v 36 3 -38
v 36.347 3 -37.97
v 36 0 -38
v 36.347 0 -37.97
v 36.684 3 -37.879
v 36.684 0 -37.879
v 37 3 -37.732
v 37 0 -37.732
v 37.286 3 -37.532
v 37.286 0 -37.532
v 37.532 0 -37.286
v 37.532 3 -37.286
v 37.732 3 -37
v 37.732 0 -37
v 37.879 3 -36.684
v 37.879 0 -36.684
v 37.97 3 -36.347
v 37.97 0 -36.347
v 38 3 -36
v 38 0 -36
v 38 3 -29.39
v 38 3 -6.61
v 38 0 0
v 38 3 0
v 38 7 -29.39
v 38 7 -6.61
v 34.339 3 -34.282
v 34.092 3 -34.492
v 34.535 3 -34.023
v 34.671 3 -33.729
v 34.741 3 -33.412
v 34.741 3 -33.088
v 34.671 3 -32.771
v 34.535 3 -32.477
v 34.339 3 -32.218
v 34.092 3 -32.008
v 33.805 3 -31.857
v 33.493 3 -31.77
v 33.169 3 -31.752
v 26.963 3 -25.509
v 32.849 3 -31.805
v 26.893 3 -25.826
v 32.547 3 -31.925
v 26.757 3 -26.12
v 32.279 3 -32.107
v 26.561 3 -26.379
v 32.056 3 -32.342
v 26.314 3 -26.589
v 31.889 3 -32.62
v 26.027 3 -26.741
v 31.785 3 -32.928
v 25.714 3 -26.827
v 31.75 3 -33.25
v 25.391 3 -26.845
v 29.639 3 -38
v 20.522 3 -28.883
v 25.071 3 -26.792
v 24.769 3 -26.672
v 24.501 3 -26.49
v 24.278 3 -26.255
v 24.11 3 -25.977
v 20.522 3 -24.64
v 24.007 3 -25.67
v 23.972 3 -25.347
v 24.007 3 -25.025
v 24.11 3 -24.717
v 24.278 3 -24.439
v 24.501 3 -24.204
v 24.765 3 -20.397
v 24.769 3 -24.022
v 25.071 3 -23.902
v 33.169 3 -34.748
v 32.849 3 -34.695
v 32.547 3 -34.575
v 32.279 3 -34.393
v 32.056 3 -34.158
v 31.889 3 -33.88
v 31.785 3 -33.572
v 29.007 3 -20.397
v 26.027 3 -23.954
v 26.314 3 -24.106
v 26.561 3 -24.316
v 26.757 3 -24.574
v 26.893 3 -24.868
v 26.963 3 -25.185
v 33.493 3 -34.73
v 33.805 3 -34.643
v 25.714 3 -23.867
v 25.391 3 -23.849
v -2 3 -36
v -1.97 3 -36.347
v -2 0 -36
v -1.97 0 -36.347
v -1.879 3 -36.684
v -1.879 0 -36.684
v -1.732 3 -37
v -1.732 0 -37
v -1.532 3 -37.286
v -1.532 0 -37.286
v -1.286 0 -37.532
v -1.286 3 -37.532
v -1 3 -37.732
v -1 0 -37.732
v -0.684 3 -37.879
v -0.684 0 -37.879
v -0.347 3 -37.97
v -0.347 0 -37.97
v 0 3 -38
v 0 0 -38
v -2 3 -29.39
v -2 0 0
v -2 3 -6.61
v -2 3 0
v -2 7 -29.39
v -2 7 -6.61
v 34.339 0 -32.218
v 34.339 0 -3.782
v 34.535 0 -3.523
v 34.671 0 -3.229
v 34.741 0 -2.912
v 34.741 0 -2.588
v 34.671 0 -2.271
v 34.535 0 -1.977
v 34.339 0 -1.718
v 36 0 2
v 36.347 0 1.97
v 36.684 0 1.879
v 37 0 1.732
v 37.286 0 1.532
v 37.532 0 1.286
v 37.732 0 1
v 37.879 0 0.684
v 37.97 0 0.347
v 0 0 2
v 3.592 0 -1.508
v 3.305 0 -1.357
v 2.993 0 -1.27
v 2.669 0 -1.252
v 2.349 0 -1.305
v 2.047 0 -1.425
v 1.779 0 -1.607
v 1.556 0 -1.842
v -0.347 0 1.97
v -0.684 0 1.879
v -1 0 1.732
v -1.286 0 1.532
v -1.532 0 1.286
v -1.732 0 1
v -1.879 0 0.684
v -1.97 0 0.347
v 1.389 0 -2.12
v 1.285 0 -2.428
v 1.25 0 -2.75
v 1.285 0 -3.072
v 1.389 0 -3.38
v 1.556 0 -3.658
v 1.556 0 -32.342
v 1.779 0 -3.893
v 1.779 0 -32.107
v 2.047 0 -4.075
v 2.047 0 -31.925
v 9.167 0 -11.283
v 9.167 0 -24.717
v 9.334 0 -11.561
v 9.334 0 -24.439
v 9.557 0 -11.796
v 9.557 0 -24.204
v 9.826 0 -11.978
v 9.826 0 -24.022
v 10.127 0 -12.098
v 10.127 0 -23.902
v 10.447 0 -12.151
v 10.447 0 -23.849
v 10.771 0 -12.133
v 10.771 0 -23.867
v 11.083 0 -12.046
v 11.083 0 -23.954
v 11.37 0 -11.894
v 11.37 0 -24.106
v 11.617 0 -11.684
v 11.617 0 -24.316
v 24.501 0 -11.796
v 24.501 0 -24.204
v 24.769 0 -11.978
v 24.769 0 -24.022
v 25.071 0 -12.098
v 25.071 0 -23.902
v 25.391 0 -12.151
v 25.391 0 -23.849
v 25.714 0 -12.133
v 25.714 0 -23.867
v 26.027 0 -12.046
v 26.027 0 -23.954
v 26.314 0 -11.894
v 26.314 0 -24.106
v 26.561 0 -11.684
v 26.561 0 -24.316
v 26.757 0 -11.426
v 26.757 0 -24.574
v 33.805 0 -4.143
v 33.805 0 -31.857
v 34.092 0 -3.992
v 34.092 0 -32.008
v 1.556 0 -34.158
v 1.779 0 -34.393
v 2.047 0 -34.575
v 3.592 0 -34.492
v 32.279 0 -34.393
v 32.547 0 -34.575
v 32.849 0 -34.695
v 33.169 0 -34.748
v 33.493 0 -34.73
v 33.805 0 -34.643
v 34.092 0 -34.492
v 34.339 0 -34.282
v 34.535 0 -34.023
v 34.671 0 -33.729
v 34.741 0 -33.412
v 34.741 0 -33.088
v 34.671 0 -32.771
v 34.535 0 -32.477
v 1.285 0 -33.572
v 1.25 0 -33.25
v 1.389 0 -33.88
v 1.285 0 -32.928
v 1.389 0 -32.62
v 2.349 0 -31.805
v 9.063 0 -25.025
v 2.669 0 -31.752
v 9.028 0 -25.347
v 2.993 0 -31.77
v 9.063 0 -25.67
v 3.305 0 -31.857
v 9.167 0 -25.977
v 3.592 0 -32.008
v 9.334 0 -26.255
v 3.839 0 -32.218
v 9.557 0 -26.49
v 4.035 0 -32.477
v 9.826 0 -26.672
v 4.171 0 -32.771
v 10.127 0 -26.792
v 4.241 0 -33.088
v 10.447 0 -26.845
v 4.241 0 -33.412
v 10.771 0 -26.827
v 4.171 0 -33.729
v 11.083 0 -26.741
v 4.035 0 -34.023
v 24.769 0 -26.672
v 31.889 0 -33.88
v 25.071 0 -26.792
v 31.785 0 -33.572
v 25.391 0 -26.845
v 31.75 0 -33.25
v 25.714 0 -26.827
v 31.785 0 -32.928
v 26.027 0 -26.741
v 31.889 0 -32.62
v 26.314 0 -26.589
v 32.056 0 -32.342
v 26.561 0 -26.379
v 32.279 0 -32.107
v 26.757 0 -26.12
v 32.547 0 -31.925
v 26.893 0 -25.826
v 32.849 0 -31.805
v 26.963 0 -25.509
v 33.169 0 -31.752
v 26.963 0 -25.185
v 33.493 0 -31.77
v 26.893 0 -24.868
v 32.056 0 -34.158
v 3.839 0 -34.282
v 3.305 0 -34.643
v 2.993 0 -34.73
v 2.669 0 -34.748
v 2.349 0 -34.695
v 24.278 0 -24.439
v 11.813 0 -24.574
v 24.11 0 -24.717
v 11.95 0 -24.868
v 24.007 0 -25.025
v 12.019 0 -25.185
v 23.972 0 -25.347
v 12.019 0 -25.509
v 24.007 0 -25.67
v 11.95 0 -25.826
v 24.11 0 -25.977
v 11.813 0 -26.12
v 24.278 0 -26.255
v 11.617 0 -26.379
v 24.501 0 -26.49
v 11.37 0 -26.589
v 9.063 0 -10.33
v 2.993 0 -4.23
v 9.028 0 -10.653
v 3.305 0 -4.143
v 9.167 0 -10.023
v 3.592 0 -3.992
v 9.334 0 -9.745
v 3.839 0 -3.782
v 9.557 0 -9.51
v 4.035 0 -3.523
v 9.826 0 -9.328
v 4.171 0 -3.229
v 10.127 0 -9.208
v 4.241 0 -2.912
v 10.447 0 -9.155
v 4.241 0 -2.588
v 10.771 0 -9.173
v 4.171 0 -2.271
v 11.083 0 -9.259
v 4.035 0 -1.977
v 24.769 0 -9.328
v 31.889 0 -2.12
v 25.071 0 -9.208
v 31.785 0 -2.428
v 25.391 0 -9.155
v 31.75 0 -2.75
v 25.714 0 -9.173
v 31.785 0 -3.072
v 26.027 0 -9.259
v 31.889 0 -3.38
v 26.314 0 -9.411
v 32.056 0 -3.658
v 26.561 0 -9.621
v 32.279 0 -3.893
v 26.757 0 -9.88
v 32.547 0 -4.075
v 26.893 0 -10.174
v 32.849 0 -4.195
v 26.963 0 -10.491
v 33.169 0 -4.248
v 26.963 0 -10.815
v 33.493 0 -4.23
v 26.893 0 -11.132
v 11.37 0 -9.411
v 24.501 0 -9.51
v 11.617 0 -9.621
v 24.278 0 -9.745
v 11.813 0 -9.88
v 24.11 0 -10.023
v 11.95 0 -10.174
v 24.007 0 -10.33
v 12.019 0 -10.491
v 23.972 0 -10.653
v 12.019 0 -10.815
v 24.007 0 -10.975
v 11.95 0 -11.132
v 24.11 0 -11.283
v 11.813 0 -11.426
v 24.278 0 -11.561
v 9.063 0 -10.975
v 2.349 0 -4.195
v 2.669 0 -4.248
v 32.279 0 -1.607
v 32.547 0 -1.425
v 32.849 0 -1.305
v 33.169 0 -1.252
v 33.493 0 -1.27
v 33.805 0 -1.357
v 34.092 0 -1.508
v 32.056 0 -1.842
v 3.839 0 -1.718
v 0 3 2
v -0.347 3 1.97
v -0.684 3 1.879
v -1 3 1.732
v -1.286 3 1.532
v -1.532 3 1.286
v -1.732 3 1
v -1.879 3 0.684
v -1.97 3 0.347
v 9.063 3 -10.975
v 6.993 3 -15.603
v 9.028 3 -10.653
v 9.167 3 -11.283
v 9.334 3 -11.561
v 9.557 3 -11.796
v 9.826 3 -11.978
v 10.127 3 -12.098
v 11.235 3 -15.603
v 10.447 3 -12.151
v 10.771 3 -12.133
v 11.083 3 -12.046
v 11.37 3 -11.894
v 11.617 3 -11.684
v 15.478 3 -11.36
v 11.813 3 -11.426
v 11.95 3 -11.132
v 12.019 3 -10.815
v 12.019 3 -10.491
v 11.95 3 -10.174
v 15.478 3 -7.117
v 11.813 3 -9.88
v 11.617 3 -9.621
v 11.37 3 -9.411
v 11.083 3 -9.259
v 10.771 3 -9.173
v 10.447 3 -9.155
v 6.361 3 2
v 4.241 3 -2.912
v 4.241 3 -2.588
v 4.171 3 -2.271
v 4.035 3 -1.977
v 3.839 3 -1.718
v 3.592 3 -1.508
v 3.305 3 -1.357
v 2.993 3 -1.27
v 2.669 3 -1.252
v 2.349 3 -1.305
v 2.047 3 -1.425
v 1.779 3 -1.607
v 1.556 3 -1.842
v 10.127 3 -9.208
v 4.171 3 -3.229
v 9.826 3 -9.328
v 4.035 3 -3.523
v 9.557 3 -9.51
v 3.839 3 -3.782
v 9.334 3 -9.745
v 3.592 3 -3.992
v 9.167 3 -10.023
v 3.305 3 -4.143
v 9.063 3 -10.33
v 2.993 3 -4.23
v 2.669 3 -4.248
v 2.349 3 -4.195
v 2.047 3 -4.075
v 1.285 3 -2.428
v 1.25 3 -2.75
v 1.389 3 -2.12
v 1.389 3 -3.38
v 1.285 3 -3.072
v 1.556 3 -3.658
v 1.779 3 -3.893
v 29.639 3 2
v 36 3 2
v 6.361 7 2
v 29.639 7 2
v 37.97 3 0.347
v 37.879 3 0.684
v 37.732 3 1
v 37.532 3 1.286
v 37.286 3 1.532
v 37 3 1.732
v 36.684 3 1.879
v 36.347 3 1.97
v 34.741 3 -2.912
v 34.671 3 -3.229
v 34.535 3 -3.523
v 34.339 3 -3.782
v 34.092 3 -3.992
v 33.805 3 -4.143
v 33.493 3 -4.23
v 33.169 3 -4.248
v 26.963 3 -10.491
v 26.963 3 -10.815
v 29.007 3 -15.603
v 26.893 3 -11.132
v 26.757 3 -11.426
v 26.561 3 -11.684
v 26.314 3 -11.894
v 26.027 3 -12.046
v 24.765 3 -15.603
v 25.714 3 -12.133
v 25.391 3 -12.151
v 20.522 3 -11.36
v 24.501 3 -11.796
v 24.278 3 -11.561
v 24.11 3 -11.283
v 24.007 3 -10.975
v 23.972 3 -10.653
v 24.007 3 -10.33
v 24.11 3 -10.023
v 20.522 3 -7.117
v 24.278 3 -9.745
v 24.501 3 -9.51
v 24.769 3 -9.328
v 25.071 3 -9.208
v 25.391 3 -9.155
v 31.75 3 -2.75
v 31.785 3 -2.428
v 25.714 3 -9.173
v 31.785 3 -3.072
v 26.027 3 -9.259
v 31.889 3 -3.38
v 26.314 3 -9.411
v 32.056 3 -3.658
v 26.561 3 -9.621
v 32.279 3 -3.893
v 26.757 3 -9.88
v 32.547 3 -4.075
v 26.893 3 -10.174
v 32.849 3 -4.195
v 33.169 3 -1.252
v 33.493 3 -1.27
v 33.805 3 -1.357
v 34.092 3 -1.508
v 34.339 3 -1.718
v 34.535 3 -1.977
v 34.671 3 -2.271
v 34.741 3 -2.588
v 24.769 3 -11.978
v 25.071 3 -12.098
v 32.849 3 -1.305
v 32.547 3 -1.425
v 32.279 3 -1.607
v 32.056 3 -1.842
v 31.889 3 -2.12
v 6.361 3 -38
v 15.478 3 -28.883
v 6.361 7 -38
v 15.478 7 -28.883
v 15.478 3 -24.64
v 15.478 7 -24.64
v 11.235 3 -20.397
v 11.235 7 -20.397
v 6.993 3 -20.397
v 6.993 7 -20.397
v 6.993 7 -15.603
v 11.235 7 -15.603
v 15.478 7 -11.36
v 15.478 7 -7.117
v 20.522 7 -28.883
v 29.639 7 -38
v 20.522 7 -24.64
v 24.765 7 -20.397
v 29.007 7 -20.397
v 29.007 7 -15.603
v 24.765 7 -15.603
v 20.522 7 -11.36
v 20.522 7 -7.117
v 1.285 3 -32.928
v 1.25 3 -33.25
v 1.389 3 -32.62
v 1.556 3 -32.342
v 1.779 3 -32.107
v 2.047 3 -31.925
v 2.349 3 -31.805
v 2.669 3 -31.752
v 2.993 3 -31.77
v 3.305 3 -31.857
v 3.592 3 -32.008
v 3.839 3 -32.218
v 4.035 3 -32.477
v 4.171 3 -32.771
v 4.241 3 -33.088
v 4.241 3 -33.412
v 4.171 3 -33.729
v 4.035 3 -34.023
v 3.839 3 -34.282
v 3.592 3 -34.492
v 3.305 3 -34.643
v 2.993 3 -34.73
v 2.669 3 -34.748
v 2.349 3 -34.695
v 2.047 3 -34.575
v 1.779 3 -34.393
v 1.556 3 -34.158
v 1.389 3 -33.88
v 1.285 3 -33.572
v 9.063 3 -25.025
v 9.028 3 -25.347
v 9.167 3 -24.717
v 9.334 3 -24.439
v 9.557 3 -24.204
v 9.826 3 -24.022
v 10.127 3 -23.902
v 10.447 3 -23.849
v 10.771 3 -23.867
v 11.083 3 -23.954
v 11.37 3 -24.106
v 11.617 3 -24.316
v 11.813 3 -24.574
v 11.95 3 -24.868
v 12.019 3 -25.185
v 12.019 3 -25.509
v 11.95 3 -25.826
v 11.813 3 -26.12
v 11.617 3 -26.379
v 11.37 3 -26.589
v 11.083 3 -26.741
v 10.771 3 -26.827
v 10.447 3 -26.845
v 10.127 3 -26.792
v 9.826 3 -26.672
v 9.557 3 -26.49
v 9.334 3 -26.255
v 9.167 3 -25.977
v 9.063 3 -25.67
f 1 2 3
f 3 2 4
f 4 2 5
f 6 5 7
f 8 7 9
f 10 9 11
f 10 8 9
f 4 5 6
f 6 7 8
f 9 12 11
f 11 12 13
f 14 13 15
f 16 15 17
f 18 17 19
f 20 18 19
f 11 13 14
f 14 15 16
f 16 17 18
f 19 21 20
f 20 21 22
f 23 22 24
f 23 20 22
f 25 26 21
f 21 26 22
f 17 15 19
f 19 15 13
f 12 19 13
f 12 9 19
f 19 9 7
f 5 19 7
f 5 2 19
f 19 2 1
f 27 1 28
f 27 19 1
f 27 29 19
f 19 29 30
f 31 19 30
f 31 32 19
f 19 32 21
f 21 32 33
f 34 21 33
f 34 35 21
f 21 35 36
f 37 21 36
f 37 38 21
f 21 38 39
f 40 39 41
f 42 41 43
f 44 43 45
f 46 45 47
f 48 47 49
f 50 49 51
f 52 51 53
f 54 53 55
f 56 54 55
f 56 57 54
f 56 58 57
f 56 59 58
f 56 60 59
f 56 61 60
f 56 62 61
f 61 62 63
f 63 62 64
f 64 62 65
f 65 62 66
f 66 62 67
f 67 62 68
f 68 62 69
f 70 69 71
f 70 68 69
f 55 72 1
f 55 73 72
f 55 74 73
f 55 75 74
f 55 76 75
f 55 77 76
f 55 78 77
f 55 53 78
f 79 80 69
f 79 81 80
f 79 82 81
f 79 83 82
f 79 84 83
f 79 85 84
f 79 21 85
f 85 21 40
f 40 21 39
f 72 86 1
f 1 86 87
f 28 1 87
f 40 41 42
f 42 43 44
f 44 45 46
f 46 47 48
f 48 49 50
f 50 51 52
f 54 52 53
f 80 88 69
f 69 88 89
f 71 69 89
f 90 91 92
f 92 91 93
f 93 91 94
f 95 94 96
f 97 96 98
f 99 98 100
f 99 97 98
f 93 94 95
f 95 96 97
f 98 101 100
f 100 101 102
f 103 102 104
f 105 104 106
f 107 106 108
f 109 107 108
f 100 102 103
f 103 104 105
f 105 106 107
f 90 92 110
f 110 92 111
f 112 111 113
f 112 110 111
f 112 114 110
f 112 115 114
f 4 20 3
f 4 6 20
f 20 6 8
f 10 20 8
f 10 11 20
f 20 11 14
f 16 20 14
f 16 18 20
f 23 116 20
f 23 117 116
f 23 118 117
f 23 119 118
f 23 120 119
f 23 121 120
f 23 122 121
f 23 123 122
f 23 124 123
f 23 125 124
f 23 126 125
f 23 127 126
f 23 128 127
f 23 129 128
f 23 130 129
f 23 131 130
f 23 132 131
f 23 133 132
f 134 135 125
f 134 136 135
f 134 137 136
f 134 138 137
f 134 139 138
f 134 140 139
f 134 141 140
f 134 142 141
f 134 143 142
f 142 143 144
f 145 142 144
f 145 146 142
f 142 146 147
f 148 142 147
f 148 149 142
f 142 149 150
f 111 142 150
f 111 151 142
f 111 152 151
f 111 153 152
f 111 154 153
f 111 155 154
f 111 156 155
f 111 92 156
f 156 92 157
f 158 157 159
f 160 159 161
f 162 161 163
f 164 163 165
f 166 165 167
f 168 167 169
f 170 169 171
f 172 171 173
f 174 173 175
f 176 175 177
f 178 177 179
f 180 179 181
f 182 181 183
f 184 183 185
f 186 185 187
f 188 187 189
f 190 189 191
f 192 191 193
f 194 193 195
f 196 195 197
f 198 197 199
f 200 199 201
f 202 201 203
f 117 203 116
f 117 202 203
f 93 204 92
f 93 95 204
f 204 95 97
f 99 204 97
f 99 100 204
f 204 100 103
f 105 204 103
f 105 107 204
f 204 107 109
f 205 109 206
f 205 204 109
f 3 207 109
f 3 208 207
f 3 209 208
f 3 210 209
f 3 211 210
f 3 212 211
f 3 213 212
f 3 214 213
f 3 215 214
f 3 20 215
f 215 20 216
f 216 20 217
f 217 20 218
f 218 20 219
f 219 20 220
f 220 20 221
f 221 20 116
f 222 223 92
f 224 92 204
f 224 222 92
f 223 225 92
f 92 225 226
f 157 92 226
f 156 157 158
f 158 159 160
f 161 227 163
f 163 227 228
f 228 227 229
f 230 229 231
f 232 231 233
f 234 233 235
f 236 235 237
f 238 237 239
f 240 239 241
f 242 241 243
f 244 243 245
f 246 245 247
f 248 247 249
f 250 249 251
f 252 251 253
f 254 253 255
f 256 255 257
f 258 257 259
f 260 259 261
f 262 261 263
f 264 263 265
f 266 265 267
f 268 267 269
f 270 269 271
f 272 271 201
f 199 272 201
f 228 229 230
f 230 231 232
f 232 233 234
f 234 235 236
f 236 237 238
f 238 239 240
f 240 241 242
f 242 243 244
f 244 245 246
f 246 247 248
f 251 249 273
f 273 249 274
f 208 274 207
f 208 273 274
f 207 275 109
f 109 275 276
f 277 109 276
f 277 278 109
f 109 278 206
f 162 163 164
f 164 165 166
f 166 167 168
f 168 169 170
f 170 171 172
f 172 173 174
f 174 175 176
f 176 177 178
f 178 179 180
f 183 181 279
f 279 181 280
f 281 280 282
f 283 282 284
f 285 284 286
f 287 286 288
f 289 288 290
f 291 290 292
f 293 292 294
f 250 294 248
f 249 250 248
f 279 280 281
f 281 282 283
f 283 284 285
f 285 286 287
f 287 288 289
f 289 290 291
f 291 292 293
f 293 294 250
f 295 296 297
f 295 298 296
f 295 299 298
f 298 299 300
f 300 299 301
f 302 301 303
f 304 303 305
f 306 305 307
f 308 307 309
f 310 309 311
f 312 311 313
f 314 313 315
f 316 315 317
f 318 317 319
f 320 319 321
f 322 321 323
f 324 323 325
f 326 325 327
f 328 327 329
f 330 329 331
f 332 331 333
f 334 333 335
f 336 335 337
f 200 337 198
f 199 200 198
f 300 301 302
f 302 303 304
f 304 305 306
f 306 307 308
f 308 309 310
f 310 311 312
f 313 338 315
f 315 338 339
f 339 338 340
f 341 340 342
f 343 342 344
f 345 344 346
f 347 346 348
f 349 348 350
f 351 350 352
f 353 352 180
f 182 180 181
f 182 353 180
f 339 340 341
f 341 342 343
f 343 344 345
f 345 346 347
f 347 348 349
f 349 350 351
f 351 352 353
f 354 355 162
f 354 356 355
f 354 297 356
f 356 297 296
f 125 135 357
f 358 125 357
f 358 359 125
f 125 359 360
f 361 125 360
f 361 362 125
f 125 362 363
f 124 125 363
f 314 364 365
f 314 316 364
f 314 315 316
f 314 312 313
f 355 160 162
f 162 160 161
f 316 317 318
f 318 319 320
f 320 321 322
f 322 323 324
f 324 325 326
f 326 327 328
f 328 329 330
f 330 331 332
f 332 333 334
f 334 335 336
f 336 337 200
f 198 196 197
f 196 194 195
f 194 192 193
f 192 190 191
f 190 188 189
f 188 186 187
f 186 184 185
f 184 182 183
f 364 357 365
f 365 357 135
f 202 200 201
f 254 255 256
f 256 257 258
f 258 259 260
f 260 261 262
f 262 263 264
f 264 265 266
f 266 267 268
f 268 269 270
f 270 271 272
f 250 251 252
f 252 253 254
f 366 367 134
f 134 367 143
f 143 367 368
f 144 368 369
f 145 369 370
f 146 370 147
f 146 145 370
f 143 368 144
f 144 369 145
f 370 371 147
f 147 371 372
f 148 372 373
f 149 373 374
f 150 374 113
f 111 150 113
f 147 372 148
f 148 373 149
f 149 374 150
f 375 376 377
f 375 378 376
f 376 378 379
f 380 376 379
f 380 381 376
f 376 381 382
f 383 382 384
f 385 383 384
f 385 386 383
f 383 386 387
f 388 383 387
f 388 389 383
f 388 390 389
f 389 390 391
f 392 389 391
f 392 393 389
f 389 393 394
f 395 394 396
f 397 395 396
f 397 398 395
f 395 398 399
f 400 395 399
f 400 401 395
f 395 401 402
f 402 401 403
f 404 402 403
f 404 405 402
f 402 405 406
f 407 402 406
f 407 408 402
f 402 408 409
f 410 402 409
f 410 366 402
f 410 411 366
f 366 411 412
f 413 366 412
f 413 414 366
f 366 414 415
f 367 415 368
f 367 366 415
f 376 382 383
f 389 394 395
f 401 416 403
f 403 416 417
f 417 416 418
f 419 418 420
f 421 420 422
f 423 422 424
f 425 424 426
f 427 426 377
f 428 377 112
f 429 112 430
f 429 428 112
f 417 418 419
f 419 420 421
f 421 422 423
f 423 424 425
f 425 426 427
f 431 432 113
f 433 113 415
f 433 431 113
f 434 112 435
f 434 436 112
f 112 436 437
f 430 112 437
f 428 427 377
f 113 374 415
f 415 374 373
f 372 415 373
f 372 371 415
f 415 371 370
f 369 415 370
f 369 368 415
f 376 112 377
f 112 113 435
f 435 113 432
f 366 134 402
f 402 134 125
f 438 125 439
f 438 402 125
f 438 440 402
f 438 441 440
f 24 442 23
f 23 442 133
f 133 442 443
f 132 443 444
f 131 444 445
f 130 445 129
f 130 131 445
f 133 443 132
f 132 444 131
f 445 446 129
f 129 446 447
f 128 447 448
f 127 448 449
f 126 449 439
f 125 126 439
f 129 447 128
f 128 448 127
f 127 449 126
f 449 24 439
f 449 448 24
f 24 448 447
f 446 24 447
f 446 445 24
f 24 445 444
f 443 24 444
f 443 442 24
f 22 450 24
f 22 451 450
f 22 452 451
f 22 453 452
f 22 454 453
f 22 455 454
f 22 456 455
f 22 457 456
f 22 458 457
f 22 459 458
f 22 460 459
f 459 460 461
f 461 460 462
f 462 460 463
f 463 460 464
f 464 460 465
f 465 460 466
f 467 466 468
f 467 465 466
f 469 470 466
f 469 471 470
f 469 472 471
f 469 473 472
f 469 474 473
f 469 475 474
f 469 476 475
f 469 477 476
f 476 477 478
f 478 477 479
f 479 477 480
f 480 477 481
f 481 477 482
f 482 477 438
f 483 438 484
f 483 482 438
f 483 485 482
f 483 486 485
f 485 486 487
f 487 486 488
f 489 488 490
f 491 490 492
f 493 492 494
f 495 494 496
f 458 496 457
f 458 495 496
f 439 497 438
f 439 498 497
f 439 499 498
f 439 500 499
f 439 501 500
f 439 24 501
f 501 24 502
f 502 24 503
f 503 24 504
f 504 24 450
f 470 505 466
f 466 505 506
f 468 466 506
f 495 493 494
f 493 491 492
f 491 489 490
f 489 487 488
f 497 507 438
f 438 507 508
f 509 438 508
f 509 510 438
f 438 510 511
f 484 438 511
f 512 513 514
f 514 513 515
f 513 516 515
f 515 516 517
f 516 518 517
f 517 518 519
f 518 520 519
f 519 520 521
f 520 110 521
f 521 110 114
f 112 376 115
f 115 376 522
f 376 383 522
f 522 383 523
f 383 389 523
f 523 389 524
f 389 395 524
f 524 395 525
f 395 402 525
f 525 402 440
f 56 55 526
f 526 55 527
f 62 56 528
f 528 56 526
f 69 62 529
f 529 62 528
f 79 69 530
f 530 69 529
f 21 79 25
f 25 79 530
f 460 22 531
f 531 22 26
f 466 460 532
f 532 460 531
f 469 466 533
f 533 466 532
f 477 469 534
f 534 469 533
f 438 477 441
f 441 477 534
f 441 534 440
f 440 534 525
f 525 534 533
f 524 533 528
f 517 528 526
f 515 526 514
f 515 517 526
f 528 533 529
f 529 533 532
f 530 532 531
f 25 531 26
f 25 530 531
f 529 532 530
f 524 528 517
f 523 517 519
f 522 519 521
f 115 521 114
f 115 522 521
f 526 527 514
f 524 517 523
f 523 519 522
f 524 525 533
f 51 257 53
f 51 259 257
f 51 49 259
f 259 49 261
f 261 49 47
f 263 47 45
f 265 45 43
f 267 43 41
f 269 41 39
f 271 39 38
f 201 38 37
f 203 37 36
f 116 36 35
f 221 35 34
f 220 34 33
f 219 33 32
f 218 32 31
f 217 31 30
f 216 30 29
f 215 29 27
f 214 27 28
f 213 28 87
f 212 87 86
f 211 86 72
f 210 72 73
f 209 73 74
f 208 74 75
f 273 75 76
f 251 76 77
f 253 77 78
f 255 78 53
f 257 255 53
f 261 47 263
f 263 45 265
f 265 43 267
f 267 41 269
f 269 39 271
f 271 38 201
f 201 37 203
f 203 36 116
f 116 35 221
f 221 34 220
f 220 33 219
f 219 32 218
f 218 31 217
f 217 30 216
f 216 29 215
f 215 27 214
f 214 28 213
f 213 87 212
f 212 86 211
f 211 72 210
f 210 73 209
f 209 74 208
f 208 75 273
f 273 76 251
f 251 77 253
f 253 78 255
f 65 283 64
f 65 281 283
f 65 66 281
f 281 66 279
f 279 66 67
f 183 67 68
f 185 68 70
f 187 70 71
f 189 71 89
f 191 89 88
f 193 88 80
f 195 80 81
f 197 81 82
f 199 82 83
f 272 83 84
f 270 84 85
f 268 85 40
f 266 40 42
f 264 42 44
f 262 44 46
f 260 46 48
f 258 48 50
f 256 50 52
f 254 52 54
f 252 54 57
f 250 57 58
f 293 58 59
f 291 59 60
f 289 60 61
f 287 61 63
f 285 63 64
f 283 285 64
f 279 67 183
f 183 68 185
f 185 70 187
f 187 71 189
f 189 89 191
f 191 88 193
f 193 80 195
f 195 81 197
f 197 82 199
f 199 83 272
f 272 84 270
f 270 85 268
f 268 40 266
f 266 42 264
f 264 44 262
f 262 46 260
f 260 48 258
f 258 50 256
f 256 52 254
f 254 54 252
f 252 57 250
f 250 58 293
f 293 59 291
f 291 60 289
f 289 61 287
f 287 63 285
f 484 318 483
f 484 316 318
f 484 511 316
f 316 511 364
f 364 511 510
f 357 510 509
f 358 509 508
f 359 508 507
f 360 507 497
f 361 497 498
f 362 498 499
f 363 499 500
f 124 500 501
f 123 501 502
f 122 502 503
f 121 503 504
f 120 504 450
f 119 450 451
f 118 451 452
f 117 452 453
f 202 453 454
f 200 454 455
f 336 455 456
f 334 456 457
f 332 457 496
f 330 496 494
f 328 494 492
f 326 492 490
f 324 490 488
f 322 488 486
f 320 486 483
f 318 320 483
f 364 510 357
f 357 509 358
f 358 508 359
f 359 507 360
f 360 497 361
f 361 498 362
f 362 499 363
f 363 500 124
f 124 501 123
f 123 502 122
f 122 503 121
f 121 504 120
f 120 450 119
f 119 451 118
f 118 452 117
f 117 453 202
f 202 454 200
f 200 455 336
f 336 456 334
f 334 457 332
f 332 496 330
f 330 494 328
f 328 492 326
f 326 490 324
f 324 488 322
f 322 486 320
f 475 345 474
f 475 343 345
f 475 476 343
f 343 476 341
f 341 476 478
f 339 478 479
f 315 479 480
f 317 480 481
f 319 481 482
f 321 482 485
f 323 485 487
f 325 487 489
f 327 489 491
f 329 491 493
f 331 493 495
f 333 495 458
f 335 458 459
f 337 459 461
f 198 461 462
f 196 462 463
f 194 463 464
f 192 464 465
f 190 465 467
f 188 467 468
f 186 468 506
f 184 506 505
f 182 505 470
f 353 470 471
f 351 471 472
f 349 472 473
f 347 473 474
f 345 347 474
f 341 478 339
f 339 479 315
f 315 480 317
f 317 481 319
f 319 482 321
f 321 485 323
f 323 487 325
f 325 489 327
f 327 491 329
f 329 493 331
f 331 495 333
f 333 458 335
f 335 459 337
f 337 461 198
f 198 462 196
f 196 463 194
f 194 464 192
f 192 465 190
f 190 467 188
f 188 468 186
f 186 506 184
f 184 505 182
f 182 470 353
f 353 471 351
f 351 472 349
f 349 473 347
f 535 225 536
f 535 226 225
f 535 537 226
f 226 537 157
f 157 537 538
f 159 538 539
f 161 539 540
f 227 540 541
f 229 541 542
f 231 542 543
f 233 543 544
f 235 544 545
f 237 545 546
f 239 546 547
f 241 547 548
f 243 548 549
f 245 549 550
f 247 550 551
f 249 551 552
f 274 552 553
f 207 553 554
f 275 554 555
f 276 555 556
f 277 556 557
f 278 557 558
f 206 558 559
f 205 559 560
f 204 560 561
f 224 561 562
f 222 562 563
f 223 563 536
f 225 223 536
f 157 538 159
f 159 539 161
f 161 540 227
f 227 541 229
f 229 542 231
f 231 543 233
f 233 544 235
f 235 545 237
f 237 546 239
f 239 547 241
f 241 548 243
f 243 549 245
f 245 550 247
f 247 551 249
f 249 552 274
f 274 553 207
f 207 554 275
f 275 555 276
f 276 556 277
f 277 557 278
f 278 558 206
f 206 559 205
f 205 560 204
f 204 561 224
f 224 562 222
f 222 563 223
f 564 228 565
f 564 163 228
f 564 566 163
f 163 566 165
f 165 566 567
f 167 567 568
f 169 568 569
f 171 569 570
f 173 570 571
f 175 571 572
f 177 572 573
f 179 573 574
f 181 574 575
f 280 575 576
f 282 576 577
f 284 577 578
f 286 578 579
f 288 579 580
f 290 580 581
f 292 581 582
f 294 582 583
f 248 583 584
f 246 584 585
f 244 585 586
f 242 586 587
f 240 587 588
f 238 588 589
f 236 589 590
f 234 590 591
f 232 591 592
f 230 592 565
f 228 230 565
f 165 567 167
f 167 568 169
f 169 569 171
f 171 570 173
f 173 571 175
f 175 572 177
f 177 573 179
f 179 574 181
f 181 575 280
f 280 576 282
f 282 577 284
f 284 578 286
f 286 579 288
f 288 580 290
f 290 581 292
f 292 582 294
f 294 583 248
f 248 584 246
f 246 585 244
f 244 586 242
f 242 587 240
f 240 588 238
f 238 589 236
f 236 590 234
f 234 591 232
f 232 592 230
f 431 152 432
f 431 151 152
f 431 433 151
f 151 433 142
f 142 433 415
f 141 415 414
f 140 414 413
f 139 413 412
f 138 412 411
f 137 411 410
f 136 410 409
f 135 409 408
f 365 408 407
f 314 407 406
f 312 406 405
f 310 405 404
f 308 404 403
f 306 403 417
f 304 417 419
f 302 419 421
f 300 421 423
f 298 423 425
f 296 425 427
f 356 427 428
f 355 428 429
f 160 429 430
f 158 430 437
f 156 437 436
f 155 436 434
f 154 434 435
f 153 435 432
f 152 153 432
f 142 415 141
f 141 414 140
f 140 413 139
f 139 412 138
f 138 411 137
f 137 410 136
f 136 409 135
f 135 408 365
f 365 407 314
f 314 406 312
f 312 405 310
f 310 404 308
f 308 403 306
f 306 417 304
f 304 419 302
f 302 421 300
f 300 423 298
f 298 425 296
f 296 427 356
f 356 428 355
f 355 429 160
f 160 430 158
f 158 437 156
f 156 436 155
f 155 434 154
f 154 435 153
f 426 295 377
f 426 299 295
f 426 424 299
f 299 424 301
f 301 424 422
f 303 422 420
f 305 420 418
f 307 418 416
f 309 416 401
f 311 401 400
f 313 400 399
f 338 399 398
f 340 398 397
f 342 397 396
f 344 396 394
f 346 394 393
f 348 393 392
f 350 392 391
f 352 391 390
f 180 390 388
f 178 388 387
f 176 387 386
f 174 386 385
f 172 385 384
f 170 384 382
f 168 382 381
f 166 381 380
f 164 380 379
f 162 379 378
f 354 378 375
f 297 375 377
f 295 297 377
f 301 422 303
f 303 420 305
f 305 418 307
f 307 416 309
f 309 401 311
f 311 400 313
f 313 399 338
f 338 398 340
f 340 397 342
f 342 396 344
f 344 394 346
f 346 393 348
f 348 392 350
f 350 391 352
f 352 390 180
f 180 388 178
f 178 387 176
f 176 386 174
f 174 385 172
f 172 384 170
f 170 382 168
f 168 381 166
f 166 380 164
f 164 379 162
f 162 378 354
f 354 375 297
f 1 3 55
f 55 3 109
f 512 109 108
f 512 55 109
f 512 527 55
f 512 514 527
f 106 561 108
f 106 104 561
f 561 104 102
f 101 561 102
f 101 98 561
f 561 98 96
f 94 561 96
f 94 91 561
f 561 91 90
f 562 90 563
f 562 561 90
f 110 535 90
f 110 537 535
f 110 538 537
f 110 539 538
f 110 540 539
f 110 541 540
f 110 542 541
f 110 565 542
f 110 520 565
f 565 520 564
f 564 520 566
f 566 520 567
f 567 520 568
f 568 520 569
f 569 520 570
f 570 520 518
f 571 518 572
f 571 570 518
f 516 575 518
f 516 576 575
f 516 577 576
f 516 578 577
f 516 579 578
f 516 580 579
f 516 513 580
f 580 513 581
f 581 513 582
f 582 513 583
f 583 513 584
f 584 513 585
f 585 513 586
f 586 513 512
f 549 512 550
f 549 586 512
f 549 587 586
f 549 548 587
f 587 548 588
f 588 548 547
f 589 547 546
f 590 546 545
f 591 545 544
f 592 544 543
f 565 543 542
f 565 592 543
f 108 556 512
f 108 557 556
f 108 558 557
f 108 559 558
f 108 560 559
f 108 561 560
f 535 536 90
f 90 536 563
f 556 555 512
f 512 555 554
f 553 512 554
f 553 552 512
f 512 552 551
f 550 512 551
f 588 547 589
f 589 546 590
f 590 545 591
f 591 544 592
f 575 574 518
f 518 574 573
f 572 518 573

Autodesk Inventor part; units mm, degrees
ref_plane "YZ Plane" through (0, 0, 0) normal (1, 0, 0) x (0, 1, 0)
ref_plane "XZ Plane" through (0, 0, 0) normal (0, 1, 0) x (-1, 0, 0)
ref_plane "XY Plane" through (0, 0, 0) normal (0, 0, 1) x (1, 0, 0)
sketch "Sketch1" plane through (0, 0, 0) normal (0, 1, 0) x (-1, 0, 0)
  line L0 (-36, -36) -> (0, -36)
  line L1 (0, -36) -> (0, 0)
  line L2 (-11.2353, -15.6026) -> (-15.4779, -11.36)
  line L3 (-15.4779, -7.1174) -> (-6.3606, 2)
  line L4 (2, -6.61) -> (-6.9926, -15.6026)
  circle A0 centre (-25.4718, -10.6529) radius 1.5
  line L5 (-15.4779, -7.1174) -> (-15.4779, -11.36)
  line L6 (-6.9926, -15.6026) -> (-11.2353, -15.6026)
  line L7 (-20.5221, -7.1174) -> (-29.6394, 2)
  line L8 (-38, -6.61) -> (-29.0074, -15.6026)
  line L9 (-24.7647, -15.6026) -> (-20.5221, -11.36)
  line L10 (-20.5221, -7.1174) -> (-20.5221, -11.36)
  line L11 (-29.0074, -15.6026) -> (-24.7647, -15.6026)
  line L12 (-15.4779, -28.8826) -> (-6.3606, -38)
  line L13 (2, -29.39) -> (-6.9926, -20.3974)
  line L14 (-11.2353, -20.3974) -> (-15.4779, -24.64)
  line L15 (-15.4779, -28.8826) -> (-15.4779, -24.64)
  line L16 (-6.9926, -20.3974) -> (-11.2353, -20.3974)
  line L17 (-20.5221, -28.8826) -> (-20.5221, -24.64)
  line L18 (-24.7647, -20.3974) -> (-20.5221, -24.64)
  line L19 (-20.5221, -28.8826) -> (-29.6394, -38)
  line L20 (-29.0074, -20.3974) -> (-24.7647, -20.3974)
  line L21 (-38, -29.39) -> (-29.0074, -20.3974)
  line L22 (0, 0) -> (-36, 0)
  line L23 (-36, 0) -> (-36, -36)
  circle A1 centre (-10.5282, -25.3471) radius 1.5
  circle A2 centre (-25.4718, -25.3471) radius 1.5
  circle A3 centre (-10.5282, -10.6529) radius 1.5
  line L24 (2, -38) -> (2, 2)
  line L25 (2, 2) -> (-38, 2)
  line L26 (-38, 2) -> (-38, -38)
  line L27 (-38, -38) -> (2, -38)
  circle A4 centre (-2.75, -2.75) radius 1.5
  circle A5 centre (-33.25, -2.75) radius 1.5
  circle A6 centre (-33.25, -33.25) radius 1.5
  circle A7 centre (-2.75, -33.25) radius 1.5
  point P0 (-9.114, -18.276)
  point P1 (-17.5992, -26.7613)
  point P2 (-26.886, -18.276)
  point P3 (-18.4008, -26.7613)
  point P4 (-9.114, -17.724)
  point P5 (-17.5992, -9.2387)
  point P6 (-18.4008, -9.2387)
  point P7 (-26.886, -17.724)
  dimension "d0" = 36
  dimension "d55" = 36
  dimension "d56" = 40
  dimension "d57" = 40
  dimension "d58" = 3
  dimension "d59" = 3
  dimension "d60" = 3
  dimension "d61" = 3
extrude "Extrusion5" add sketch "Sketch1" along normal blind 3
extrude "Extrusion6" add sketch "Sketch1" along normal blind 7 contours L19 L17 L18 L20 L21 L23 L8 L11 L9 L10 L7 L22 L3 L5 L2 L6 L4 L1 L13 L16 L14 L15 L12 L0 | L0 L12 L27 L19 | L21 L26 L8 L23 | L1 L4 L24 L13 | L7 L25 L3 L22
fillet "Fillet2" radius 2 4 edges at (38, 1.5, 2) (-2, 1.5, 2) (-2, 1.5, -38) (38, 1.5, -38)
sketch "Sketch2" plane through (0, 7, 0) normal (0, 1, 0) x (1, 0, 0)
  circle A0 centre (1, 18) radius 1.5
  circle A1 centre (18, 35) radius 1.5
  circle A2 centre (35, 18) radius 1.5
  point P0 (0, 0)
  dimension "d56" = 40
  dimension "d68" = 3
  dimension "d71" = 3
  dimension "d72" = 3
properties part number "Bot"
